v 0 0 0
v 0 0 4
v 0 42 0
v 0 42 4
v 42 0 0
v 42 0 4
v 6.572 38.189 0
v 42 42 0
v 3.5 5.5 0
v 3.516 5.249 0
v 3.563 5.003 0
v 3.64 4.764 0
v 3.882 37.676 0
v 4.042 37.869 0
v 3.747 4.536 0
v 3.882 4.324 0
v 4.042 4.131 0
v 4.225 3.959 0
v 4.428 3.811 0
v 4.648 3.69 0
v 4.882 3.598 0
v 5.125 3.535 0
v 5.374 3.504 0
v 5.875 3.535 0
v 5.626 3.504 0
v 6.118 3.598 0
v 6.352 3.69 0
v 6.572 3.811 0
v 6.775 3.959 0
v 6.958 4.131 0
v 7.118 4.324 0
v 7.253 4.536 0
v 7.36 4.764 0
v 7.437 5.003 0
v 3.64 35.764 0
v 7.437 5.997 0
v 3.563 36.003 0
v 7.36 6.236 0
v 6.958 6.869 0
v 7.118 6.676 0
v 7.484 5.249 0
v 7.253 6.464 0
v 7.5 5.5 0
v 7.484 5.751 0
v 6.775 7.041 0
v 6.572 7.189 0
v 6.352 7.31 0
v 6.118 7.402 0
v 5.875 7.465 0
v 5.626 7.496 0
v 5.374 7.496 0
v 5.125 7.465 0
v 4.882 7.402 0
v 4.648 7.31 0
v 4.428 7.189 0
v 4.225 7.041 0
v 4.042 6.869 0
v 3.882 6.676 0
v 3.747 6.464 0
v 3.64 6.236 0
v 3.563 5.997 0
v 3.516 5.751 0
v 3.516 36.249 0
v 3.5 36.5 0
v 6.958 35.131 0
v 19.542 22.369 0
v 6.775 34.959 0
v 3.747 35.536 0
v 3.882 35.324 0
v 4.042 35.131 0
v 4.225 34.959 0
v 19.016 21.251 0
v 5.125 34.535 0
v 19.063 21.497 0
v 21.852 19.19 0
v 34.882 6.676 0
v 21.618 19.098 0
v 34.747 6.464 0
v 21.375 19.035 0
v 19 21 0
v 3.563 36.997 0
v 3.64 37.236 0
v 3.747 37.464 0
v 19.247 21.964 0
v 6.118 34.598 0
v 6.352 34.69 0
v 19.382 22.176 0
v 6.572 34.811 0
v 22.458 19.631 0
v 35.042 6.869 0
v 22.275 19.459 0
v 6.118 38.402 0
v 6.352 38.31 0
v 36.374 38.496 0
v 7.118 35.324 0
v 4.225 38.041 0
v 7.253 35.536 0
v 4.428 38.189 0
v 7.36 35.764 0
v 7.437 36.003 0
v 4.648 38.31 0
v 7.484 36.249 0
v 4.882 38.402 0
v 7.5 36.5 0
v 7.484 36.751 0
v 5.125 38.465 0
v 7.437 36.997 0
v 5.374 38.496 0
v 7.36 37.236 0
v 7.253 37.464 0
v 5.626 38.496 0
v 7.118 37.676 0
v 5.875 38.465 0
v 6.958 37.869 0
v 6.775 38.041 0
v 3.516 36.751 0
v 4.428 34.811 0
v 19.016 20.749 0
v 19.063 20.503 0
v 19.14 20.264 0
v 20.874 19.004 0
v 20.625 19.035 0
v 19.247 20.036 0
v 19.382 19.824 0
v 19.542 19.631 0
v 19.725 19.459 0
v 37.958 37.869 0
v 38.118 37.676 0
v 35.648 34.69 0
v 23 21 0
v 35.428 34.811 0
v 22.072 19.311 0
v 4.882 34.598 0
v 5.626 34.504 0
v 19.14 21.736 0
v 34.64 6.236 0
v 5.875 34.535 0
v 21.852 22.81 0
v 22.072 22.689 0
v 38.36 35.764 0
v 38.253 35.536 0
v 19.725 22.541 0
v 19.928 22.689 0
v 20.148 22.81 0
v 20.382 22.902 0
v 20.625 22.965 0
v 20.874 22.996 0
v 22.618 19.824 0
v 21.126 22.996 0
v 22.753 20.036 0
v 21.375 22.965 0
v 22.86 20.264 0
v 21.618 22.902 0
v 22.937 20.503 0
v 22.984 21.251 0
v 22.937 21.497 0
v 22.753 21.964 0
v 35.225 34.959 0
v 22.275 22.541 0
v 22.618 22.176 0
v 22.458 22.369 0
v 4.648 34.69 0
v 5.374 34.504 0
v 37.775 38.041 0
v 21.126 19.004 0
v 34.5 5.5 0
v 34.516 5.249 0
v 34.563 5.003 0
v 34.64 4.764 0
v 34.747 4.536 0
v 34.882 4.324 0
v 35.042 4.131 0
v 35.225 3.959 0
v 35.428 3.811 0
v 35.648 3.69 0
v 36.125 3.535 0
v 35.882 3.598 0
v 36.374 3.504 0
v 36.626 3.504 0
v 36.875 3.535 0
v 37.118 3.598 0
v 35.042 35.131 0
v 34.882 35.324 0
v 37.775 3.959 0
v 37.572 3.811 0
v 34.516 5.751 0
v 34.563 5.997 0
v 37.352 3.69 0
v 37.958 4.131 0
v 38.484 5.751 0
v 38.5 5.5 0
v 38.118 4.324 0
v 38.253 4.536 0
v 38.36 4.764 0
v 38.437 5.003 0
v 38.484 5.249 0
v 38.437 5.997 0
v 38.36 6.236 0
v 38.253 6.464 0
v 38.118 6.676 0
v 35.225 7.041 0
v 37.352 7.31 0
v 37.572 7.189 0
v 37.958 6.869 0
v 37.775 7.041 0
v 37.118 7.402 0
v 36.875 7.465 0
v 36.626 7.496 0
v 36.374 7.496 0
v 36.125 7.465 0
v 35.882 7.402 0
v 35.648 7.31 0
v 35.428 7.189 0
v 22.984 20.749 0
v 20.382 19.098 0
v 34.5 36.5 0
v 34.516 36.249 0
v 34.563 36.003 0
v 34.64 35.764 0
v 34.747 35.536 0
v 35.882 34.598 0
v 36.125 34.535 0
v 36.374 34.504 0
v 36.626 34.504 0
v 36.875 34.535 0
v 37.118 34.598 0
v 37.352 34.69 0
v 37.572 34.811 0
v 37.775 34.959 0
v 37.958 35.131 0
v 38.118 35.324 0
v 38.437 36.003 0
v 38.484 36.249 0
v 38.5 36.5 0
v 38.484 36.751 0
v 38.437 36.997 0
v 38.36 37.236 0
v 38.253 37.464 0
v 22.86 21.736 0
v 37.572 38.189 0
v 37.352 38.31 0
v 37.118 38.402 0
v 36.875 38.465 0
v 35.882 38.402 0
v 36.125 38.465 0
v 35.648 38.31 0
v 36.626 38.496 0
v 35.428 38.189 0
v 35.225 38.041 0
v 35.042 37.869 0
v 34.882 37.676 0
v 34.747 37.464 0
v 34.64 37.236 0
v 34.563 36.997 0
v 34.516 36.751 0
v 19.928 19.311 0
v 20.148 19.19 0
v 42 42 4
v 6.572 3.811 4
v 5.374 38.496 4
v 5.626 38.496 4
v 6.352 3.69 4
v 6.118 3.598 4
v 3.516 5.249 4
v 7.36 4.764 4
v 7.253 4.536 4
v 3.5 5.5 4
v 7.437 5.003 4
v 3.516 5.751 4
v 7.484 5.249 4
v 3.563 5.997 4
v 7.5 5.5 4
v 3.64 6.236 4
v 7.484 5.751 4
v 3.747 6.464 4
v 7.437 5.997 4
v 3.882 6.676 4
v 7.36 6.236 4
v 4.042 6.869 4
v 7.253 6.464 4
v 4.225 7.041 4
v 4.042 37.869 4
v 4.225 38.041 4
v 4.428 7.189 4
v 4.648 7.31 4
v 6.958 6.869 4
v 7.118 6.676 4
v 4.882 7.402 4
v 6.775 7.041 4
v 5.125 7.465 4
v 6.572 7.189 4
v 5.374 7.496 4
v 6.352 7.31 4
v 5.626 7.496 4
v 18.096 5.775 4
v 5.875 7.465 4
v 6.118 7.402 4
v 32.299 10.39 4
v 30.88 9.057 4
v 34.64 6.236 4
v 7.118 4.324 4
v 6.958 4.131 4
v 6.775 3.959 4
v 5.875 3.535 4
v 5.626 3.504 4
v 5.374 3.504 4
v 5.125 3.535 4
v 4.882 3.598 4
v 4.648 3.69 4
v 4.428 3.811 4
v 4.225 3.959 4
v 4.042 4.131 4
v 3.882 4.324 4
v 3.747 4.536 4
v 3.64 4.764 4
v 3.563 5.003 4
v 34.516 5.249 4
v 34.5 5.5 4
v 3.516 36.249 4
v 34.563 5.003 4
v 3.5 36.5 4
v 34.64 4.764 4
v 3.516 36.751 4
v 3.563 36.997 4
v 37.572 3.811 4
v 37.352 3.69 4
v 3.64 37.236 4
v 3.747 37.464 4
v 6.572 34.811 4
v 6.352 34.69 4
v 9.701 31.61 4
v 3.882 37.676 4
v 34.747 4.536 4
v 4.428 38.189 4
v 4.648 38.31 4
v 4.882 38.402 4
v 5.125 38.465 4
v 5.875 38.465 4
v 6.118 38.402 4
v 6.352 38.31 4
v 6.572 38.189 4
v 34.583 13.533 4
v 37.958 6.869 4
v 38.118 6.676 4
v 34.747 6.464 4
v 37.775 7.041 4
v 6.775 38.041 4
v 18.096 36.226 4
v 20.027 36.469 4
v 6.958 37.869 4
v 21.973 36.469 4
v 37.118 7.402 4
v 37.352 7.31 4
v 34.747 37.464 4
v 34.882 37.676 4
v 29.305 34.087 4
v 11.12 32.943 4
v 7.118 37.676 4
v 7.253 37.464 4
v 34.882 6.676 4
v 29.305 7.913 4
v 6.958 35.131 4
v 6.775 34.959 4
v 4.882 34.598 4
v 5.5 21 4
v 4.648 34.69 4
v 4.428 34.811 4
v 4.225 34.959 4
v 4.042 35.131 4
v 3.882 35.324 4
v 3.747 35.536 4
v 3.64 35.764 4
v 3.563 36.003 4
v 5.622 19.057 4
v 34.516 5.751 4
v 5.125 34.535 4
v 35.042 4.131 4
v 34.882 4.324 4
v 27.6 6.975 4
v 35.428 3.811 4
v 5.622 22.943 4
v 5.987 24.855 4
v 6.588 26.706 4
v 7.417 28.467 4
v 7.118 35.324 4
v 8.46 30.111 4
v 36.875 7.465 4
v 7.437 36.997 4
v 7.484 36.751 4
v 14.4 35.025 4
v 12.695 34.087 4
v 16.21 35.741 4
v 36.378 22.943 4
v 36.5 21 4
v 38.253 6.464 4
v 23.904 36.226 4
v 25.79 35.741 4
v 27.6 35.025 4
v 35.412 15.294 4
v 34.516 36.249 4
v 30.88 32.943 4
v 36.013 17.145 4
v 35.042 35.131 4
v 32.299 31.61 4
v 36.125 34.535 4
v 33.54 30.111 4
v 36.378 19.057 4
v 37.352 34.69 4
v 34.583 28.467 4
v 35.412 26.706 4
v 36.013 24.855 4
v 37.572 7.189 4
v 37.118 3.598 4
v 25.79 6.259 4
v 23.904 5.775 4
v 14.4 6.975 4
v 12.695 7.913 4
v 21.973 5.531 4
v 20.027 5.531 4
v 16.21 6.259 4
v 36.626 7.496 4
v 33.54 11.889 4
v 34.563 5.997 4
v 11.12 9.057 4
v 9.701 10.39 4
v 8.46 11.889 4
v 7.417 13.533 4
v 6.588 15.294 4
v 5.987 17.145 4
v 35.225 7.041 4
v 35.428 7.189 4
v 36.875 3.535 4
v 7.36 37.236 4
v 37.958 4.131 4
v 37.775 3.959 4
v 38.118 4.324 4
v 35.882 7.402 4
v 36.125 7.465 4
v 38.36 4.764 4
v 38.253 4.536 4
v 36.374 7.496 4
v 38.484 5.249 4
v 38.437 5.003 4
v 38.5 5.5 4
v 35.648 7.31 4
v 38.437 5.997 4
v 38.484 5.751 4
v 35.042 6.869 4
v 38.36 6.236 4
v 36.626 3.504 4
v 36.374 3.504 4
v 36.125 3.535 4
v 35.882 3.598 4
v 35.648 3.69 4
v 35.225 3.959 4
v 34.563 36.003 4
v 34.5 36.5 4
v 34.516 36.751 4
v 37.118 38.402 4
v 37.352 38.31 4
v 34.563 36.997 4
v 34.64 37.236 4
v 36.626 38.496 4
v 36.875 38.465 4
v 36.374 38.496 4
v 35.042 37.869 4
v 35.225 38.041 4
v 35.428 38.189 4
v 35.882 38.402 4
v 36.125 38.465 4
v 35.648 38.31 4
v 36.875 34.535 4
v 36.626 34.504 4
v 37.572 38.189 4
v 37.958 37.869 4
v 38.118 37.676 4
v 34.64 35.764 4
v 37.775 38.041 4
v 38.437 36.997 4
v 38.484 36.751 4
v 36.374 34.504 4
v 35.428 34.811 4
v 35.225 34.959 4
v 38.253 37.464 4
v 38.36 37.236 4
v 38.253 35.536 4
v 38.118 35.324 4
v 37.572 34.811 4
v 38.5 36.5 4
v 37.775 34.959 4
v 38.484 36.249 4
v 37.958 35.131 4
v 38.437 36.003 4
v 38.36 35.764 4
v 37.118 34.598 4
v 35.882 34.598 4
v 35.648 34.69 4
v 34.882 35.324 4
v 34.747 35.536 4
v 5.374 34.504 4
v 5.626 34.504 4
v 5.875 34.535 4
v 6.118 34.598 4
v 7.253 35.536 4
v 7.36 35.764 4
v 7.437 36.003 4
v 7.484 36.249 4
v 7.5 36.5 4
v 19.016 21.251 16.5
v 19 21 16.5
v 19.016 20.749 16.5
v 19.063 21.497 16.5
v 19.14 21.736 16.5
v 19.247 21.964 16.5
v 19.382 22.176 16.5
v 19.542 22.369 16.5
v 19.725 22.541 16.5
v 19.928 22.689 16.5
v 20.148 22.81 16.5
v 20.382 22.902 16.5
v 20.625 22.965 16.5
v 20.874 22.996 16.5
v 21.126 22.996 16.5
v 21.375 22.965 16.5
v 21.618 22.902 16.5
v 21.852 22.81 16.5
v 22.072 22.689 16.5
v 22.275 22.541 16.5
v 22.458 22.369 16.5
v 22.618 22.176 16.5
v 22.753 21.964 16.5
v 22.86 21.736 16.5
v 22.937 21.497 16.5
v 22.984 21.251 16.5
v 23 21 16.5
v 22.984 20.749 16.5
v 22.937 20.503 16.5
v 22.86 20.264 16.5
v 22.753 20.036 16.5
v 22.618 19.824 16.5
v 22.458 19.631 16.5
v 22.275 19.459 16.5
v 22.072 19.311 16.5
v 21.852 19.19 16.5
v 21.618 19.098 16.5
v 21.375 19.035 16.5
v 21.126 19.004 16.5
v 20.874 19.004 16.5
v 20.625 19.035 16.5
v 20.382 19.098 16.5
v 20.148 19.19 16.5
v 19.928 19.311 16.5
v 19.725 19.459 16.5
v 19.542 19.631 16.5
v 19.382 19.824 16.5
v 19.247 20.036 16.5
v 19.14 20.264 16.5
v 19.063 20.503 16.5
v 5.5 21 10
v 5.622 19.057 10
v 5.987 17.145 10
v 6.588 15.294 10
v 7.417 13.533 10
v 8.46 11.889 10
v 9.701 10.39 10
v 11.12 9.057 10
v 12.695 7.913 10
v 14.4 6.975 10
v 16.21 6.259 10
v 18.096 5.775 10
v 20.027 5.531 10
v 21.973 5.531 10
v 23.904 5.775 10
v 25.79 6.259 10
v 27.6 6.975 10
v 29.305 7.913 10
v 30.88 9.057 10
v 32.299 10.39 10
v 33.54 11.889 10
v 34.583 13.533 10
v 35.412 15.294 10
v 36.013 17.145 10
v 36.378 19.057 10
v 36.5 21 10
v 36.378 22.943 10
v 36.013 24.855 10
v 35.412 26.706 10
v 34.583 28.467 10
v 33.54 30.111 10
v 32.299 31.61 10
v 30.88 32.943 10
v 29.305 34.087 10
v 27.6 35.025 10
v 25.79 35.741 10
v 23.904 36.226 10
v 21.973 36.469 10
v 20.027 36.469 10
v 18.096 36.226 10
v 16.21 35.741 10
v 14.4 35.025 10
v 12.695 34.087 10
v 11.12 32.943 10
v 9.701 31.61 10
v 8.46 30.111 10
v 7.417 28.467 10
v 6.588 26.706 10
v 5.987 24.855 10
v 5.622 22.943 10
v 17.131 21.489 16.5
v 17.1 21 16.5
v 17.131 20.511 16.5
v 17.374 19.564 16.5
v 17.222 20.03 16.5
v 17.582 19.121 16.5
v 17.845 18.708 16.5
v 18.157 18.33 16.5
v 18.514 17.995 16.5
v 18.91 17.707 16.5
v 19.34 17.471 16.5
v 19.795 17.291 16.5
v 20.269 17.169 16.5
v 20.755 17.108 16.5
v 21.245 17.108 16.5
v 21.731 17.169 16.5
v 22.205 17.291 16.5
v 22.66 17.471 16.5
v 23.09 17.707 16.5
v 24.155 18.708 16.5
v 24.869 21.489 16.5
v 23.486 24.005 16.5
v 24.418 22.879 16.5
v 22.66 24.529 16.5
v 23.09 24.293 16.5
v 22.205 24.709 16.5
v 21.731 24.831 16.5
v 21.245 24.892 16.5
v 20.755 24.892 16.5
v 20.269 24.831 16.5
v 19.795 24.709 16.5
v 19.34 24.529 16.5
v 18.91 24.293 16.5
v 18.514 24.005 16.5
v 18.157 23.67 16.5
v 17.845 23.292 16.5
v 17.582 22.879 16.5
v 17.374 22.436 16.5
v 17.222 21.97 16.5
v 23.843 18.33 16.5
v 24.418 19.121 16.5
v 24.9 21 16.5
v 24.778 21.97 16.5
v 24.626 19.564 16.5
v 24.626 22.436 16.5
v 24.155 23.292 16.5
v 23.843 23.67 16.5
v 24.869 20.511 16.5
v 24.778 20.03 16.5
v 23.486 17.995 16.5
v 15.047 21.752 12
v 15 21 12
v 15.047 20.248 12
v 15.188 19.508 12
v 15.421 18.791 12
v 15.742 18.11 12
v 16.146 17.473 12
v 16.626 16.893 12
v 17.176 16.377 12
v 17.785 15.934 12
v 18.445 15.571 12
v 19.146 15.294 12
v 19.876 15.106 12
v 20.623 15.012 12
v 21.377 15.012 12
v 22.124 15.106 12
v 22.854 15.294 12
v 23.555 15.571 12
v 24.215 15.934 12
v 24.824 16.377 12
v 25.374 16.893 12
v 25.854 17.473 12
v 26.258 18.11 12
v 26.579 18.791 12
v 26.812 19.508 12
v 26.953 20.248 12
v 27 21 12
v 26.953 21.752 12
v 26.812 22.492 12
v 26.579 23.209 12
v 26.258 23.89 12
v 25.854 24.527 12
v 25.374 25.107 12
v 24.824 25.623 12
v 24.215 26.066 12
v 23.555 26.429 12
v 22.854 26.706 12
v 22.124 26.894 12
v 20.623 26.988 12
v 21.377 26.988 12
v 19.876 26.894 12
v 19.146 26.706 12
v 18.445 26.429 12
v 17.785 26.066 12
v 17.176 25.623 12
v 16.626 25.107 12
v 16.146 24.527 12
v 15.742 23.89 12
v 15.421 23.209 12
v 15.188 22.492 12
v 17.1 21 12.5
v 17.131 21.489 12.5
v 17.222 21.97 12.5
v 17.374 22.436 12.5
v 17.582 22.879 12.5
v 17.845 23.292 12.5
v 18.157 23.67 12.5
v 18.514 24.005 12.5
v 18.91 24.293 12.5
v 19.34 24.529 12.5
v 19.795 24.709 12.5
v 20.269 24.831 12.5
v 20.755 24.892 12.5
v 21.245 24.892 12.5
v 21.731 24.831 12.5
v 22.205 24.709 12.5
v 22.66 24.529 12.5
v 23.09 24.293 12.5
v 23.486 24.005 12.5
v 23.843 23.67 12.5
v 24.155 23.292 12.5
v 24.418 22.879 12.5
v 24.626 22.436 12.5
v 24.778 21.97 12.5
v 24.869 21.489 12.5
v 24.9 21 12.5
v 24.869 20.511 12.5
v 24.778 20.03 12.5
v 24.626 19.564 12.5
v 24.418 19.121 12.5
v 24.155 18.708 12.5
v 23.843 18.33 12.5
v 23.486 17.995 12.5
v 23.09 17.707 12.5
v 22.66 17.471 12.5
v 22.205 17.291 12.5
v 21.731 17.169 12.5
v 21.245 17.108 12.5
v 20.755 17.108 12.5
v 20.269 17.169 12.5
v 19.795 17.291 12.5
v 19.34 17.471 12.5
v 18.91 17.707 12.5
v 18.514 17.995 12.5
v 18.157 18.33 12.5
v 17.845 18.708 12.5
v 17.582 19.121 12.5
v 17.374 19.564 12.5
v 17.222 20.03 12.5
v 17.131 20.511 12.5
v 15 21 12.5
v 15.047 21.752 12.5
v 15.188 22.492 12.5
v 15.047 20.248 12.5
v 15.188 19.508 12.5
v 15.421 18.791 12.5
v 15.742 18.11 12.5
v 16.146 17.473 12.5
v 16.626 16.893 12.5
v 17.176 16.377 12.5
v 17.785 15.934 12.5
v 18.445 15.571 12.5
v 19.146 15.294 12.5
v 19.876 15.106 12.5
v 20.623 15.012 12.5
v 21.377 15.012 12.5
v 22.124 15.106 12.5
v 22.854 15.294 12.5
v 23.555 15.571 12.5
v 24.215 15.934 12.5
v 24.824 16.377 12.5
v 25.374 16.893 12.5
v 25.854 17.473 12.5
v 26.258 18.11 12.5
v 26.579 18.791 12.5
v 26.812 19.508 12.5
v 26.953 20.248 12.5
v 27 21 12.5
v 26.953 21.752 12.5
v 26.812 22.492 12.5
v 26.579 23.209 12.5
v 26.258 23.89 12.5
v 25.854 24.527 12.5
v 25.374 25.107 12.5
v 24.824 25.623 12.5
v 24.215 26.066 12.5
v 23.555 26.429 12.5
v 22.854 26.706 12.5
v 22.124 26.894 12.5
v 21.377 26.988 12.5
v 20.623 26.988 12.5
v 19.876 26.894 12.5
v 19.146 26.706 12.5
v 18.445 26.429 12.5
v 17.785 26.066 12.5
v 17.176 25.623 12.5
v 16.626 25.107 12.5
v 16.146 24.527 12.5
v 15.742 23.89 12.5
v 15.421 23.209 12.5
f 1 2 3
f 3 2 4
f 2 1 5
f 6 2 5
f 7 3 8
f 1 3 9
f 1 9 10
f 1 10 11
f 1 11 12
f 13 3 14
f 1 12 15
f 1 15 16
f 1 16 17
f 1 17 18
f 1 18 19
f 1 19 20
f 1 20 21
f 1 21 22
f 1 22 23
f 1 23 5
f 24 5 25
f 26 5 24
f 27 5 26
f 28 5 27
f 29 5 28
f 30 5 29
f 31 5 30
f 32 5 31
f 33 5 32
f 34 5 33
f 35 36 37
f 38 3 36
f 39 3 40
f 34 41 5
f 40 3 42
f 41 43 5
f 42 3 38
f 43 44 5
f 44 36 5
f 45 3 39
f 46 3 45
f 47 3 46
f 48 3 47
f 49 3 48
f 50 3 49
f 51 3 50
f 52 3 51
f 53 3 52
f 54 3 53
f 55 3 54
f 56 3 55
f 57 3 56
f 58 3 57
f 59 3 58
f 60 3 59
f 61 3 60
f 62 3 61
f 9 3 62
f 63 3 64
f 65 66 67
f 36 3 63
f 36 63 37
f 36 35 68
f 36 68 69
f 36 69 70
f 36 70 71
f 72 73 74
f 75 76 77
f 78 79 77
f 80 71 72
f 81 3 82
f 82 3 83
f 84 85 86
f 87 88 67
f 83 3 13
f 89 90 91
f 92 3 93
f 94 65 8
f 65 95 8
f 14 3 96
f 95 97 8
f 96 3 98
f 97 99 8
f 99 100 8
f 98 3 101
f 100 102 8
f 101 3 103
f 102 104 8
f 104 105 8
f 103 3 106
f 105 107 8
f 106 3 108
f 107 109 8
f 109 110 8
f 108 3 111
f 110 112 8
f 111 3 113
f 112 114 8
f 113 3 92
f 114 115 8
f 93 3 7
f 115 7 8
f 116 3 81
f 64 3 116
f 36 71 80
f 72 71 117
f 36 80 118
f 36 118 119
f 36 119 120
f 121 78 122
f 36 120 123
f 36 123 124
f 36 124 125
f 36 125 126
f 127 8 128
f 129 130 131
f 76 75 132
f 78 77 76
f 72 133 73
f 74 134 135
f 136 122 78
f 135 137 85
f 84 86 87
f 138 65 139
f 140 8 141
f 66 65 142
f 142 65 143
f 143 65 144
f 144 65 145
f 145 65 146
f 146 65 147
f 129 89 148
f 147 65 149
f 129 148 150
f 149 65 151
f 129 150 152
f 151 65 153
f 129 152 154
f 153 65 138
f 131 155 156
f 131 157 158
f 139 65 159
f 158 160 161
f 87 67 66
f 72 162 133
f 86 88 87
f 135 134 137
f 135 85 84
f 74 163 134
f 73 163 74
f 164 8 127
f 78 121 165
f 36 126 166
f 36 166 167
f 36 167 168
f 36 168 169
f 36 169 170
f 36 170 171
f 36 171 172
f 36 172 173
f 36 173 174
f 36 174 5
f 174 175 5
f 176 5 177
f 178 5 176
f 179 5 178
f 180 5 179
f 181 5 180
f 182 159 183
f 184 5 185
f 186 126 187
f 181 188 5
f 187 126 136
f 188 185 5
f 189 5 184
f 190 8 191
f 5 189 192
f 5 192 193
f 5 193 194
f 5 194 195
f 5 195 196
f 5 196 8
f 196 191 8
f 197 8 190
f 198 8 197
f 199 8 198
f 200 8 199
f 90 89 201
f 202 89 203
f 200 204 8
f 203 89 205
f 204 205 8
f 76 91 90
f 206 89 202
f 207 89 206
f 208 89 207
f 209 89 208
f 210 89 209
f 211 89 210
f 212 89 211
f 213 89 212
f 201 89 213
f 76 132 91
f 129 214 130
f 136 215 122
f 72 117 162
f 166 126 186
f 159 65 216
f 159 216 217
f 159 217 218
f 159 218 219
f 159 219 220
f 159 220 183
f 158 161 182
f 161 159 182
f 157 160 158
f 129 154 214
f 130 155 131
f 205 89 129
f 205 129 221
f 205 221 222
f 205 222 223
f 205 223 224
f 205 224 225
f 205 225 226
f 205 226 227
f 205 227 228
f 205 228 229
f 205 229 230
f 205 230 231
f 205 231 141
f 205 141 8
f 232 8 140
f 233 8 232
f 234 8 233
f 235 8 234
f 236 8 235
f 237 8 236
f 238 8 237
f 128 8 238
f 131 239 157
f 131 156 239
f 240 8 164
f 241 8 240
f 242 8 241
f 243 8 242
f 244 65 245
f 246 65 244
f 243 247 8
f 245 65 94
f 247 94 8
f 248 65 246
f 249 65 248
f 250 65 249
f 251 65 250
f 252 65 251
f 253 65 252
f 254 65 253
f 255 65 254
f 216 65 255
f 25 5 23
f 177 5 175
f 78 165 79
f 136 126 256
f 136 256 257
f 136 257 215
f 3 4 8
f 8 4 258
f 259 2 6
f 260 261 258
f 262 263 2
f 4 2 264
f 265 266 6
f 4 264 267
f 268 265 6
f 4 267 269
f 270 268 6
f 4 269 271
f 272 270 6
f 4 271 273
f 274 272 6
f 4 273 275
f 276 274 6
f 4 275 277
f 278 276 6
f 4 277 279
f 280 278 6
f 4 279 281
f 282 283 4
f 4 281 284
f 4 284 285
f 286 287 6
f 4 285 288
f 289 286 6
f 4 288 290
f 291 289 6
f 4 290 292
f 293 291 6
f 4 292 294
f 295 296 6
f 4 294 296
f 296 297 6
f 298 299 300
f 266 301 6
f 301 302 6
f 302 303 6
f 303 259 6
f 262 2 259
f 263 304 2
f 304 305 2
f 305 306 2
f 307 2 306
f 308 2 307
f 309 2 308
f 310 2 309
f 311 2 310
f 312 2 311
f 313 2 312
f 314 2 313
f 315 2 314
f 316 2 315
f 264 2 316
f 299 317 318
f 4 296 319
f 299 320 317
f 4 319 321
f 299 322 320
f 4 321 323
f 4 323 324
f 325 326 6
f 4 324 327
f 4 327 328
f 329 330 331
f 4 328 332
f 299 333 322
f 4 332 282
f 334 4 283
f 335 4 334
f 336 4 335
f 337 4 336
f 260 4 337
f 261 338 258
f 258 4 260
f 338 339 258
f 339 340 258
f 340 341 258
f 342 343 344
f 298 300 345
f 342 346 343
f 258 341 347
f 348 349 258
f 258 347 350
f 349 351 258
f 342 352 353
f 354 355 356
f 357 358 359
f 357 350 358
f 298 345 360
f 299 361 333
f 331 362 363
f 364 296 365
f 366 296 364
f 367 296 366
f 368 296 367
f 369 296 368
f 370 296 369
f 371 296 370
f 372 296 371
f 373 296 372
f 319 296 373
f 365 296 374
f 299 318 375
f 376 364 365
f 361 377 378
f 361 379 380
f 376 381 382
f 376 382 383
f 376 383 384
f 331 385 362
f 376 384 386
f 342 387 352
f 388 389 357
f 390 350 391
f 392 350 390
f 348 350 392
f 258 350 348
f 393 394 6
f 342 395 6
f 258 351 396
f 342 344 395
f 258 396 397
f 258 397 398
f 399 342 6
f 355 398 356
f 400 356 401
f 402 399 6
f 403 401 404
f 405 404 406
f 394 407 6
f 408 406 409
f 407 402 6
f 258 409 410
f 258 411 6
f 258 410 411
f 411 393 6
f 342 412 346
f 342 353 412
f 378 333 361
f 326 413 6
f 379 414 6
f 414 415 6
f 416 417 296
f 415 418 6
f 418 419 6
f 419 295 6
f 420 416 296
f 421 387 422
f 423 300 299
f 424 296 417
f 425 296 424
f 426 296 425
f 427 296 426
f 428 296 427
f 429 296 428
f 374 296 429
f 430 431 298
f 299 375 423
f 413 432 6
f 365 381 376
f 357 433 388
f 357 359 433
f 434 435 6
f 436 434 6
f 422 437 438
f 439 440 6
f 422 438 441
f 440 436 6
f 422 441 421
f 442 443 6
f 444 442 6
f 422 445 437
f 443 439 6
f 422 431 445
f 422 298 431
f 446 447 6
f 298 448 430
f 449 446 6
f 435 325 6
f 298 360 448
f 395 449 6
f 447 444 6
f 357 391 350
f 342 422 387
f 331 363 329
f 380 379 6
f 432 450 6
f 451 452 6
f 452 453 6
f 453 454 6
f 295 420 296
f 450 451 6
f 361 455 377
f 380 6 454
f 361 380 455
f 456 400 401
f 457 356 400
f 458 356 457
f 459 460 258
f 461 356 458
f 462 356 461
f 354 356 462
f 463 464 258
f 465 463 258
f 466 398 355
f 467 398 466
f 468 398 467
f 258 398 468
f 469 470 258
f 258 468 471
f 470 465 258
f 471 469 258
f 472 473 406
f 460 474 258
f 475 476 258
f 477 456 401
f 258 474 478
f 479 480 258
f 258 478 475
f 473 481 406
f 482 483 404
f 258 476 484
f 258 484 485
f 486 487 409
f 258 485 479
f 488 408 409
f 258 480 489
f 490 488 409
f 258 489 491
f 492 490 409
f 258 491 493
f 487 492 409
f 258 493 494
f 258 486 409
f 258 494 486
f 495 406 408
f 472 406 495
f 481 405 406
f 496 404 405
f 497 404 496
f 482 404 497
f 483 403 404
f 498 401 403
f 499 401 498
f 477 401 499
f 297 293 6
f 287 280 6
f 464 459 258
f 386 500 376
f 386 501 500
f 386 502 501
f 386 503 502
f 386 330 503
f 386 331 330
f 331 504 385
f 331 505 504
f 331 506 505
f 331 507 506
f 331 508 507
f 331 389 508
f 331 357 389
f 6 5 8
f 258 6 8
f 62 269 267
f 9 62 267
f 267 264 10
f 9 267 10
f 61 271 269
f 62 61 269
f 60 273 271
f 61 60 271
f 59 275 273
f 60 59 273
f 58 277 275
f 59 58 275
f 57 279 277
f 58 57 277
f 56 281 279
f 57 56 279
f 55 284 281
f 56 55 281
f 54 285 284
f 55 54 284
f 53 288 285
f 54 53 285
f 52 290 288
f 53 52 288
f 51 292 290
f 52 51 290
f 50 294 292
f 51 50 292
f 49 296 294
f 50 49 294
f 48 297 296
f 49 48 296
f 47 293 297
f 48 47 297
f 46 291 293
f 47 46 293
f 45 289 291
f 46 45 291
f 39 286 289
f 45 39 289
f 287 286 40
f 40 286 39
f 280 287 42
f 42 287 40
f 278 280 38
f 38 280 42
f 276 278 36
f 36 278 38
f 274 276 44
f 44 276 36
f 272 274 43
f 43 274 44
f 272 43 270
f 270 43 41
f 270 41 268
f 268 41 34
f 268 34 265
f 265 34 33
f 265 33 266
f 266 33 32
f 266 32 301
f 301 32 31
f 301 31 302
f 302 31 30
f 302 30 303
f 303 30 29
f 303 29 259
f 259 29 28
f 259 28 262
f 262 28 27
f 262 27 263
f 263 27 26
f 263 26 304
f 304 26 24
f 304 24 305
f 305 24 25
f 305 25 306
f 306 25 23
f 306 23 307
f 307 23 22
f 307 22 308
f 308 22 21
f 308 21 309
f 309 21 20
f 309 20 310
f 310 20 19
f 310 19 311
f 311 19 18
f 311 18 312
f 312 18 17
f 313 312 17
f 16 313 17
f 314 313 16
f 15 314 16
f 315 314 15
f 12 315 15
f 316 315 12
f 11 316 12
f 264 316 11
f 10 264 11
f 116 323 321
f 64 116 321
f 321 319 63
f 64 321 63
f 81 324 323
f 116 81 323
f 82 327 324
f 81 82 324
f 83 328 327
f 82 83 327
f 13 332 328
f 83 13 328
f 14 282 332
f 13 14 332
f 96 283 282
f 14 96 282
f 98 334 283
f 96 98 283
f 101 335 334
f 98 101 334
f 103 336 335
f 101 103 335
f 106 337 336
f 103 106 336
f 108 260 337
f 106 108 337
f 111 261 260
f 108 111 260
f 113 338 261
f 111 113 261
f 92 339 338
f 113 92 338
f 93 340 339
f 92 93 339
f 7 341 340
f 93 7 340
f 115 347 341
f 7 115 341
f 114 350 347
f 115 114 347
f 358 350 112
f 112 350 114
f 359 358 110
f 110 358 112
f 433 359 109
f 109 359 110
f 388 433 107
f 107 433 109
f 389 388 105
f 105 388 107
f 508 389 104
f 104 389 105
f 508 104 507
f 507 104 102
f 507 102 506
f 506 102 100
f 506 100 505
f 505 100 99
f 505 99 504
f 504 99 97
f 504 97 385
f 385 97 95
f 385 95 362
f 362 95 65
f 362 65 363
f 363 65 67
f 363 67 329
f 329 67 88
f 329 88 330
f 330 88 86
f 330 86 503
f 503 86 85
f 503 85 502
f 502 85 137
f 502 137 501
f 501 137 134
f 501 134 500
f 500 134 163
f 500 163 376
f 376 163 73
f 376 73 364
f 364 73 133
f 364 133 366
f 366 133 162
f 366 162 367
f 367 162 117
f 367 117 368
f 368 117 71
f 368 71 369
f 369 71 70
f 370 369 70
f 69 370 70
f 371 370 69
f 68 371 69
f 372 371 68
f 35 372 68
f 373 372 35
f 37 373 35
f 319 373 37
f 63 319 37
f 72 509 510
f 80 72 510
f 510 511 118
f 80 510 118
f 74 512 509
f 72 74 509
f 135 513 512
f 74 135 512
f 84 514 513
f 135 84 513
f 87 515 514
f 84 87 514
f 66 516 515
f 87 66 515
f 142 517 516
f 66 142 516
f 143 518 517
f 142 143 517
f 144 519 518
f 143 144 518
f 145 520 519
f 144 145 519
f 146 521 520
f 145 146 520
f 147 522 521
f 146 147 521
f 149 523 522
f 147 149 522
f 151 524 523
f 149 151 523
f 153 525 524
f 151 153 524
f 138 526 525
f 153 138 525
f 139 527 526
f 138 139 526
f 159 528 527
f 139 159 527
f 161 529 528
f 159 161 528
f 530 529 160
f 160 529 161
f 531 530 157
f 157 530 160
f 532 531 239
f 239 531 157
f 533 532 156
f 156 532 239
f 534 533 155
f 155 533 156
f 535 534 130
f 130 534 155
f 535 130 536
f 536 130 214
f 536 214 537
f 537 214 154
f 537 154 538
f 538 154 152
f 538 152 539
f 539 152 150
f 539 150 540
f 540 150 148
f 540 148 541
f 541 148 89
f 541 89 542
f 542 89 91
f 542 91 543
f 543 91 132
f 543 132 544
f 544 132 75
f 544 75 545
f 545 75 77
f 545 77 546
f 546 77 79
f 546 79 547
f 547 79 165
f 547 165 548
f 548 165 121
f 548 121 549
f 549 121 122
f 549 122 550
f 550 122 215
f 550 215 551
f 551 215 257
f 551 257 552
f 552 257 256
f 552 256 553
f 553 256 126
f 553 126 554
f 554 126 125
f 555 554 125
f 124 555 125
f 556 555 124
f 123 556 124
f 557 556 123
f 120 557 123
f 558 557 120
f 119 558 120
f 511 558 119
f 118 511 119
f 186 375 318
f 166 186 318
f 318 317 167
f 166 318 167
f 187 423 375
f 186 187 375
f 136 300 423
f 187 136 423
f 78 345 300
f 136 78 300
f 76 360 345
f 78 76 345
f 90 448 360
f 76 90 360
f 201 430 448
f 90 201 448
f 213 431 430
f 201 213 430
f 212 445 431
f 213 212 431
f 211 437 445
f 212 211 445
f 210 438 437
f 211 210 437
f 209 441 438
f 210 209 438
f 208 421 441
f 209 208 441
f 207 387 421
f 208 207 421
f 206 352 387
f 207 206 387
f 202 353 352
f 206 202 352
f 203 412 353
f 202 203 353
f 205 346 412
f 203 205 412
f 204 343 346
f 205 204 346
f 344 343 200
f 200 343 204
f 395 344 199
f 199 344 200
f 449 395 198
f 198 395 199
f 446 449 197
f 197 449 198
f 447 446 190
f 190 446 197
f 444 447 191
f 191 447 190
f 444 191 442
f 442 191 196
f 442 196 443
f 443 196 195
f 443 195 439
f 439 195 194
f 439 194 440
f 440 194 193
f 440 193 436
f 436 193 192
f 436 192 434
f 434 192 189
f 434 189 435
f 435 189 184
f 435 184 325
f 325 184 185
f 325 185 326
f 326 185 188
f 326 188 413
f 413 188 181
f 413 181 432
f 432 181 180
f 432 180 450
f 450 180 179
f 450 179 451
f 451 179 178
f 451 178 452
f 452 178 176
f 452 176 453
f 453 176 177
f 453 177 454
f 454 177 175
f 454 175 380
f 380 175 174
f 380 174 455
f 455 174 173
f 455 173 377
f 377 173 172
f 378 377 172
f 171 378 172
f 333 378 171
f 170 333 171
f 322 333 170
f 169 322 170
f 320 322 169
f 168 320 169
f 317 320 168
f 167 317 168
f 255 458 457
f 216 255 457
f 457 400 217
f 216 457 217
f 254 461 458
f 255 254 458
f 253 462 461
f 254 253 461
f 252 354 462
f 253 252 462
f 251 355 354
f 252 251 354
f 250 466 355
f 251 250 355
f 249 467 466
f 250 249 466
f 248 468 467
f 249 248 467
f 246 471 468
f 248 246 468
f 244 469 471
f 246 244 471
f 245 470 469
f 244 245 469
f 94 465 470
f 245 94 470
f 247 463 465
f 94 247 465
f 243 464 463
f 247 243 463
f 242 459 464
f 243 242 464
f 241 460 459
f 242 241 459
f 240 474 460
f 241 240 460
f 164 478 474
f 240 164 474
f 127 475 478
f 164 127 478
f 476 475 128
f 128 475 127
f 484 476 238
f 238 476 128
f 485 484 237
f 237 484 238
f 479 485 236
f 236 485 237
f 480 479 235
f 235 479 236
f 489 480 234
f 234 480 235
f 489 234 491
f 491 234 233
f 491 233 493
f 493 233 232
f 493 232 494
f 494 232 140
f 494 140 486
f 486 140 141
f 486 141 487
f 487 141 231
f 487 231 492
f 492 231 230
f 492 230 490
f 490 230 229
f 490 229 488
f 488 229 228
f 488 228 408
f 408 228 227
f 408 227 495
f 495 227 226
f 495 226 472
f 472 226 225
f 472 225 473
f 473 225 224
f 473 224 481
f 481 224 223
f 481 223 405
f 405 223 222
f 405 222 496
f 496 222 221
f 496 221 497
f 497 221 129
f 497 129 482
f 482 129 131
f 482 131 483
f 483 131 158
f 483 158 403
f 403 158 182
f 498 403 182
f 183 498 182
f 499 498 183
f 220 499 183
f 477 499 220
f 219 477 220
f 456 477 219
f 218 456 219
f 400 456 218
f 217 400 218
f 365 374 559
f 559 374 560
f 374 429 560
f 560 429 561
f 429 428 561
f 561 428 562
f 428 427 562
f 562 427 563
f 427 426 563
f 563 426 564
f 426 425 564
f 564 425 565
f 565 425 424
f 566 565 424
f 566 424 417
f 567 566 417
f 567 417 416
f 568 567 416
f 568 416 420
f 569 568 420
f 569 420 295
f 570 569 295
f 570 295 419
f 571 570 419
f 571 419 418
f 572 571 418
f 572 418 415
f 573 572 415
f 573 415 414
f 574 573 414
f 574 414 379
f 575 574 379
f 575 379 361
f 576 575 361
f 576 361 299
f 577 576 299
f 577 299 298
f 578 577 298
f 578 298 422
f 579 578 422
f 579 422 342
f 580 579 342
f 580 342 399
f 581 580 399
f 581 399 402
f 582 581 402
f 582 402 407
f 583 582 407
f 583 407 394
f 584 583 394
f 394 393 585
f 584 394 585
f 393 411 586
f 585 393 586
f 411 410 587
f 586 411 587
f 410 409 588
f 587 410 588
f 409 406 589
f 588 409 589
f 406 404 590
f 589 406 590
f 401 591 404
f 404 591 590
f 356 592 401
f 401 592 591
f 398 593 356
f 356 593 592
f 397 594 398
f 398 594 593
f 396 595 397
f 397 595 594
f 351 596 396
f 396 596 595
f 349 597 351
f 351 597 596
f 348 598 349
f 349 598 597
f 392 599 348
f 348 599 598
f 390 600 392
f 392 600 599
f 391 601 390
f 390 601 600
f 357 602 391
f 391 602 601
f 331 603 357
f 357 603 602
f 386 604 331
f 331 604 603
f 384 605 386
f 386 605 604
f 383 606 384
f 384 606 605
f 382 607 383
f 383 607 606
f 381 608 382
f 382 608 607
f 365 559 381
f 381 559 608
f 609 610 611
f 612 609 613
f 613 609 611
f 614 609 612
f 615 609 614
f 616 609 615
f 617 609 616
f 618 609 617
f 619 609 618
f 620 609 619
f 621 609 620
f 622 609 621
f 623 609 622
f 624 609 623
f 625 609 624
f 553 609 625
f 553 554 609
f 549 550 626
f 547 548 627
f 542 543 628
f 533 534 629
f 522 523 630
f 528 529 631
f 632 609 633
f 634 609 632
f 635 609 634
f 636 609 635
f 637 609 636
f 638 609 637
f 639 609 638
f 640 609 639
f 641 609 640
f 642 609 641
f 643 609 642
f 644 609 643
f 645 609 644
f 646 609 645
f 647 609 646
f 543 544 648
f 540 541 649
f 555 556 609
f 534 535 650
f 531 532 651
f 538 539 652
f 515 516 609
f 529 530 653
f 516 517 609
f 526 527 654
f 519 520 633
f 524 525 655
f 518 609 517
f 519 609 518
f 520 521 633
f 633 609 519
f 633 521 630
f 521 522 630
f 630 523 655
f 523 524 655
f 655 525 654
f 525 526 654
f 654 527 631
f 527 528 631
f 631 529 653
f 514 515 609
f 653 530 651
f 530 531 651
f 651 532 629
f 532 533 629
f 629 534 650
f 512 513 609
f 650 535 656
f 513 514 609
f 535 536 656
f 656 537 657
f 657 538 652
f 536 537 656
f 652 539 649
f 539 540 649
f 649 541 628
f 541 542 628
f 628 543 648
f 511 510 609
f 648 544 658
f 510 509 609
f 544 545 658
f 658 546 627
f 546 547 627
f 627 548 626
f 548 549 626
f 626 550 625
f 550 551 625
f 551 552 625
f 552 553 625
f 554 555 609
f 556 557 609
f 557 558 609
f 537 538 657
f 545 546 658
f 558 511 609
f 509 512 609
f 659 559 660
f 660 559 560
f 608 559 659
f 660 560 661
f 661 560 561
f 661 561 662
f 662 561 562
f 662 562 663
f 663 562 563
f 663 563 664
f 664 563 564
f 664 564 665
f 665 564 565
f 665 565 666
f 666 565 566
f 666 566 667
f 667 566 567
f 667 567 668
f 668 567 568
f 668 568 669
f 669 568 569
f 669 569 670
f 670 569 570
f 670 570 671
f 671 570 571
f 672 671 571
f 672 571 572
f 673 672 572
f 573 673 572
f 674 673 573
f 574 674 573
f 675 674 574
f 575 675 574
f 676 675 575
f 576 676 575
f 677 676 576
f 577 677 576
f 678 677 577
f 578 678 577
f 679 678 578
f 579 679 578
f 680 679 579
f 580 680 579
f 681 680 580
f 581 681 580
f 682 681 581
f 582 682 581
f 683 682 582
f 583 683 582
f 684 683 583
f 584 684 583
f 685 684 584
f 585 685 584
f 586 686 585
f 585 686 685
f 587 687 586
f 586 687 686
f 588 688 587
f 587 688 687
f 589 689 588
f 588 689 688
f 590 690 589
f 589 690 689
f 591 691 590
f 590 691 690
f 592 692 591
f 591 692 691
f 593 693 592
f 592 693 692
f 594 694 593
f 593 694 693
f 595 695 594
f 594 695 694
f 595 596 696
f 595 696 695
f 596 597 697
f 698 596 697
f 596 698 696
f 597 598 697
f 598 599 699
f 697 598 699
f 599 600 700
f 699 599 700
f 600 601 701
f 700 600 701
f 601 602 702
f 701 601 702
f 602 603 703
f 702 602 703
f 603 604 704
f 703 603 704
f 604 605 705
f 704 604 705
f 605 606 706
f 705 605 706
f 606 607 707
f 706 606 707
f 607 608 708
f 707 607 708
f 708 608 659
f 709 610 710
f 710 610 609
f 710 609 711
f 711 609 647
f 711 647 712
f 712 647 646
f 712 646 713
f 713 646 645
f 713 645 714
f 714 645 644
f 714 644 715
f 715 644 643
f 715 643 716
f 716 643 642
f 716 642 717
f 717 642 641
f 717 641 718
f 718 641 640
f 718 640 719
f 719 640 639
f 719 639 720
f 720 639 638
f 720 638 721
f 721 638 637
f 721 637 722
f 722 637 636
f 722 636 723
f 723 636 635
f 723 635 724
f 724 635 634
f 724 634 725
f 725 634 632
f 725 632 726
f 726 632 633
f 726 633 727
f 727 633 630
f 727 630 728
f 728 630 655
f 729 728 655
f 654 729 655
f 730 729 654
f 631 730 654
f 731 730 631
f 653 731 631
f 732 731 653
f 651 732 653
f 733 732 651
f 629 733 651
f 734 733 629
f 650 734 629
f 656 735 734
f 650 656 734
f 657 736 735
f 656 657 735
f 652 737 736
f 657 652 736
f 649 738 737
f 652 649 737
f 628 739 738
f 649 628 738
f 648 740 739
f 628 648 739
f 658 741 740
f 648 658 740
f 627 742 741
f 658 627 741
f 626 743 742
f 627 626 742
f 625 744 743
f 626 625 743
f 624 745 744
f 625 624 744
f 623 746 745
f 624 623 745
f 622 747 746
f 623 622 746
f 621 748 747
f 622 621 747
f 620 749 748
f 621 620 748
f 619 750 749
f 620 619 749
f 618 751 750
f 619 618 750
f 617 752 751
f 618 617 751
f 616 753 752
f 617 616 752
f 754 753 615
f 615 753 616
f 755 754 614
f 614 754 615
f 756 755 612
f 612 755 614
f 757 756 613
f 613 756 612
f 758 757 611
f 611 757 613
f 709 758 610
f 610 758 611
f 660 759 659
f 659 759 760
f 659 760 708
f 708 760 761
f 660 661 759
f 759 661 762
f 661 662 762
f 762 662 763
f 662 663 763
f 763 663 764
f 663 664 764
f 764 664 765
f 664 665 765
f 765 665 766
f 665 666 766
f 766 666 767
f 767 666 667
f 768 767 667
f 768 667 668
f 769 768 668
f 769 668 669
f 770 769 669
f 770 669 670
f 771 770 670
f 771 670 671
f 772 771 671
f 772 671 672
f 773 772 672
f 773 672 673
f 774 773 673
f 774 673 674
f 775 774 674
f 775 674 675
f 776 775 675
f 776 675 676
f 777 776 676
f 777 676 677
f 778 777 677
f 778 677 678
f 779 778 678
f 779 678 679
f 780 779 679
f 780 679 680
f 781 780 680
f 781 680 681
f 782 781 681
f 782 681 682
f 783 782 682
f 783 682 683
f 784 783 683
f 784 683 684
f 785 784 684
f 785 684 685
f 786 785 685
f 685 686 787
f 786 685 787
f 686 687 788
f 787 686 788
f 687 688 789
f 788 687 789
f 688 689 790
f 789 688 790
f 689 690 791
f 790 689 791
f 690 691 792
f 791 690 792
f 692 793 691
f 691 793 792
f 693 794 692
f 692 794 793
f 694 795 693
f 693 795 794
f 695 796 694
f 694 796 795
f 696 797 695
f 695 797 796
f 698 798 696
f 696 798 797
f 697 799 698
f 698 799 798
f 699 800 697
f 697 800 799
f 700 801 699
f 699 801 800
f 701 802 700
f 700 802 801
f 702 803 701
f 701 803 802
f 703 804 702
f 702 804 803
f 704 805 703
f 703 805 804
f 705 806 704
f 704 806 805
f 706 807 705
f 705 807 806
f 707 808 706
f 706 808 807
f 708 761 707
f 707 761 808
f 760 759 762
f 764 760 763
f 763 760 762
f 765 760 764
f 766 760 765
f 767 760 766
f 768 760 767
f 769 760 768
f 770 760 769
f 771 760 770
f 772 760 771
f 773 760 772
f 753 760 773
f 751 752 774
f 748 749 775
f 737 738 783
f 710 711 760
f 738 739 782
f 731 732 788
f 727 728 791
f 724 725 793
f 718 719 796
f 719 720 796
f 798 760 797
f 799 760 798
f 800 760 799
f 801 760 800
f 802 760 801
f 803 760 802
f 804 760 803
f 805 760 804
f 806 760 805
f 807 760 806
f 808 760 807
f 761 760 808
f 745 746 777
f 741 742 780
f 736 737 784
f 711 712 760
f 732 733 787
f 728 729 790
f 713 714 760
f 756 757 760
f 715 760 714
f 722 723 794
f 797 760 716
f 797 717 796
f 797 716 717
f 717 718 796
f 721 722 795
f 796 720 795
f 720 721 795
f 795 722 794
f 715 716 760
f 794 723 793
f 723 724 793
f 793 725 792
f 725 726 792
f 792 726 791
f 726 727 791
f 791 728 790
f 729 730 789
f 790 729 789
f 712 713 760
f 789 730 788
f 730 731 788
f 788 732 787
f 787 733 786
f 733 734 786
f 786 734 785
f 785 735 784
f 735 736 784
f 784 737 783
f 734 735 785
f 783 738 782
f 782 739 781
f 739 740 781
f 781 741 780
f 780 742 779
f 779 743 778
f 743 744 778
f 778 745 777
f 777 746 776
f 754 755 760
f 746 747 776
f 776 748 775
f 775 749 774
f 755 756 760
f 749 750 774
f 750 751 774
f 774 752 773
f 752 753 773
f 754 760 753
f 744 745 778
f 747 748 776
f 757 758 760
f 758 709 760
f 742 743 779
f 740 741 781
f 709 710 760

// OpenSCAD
r_m3=2;
r_ecrou_m3=3.3;
r_m8=3.9;
ep_608=8;
ep=4;
l=42;
height=25;

module retour_x(){
	difference(){
		union(){
		cube([l,l,ep]);

		//flasque roulement
		translate([l/2,l/2,ep]){cylinder(r=15.5, h=height/2-2-ep_608/2-0.5, $fn=50);}
		translate([l/2,l/2,ep+height/2-2-ep_608/2-0.5]){cylinder(r1=15.5, r2=6, h=2, $fn=50);}
		translate([l/2,l/2,ep+height/2-2-ep_608/2+2-0.5]){cylinder(r=6, h=0.5, $fn=50);}
		translate([l/2,l/2,ep+height/2-2-ep_608/2+2]){cylinder(r=r_m8, h=ep_608/2, $fn=50);}
		}
	
		//trous pour fixation
		translate([5.5,5.5,-5]){cylinder(r=r_m3, h=15, $fn=50);}
		translate([l-5.5,5.5,-5]){cylinder(r=r_m3, h=15, $fn=50);}
		translate([5.5,l-5.5,-5]){cylinder(r=r_m3, h=15, $fn=50);}
		translate([l-5.5,l-5.5,-5]){cylinder(r=r_m3, h=15, $fn=50);}
		
		translate([l/2,l/2,-5]){cylinder(r=r_m3, h=50, $fn=50);}

		
	}


}
retour_x();
